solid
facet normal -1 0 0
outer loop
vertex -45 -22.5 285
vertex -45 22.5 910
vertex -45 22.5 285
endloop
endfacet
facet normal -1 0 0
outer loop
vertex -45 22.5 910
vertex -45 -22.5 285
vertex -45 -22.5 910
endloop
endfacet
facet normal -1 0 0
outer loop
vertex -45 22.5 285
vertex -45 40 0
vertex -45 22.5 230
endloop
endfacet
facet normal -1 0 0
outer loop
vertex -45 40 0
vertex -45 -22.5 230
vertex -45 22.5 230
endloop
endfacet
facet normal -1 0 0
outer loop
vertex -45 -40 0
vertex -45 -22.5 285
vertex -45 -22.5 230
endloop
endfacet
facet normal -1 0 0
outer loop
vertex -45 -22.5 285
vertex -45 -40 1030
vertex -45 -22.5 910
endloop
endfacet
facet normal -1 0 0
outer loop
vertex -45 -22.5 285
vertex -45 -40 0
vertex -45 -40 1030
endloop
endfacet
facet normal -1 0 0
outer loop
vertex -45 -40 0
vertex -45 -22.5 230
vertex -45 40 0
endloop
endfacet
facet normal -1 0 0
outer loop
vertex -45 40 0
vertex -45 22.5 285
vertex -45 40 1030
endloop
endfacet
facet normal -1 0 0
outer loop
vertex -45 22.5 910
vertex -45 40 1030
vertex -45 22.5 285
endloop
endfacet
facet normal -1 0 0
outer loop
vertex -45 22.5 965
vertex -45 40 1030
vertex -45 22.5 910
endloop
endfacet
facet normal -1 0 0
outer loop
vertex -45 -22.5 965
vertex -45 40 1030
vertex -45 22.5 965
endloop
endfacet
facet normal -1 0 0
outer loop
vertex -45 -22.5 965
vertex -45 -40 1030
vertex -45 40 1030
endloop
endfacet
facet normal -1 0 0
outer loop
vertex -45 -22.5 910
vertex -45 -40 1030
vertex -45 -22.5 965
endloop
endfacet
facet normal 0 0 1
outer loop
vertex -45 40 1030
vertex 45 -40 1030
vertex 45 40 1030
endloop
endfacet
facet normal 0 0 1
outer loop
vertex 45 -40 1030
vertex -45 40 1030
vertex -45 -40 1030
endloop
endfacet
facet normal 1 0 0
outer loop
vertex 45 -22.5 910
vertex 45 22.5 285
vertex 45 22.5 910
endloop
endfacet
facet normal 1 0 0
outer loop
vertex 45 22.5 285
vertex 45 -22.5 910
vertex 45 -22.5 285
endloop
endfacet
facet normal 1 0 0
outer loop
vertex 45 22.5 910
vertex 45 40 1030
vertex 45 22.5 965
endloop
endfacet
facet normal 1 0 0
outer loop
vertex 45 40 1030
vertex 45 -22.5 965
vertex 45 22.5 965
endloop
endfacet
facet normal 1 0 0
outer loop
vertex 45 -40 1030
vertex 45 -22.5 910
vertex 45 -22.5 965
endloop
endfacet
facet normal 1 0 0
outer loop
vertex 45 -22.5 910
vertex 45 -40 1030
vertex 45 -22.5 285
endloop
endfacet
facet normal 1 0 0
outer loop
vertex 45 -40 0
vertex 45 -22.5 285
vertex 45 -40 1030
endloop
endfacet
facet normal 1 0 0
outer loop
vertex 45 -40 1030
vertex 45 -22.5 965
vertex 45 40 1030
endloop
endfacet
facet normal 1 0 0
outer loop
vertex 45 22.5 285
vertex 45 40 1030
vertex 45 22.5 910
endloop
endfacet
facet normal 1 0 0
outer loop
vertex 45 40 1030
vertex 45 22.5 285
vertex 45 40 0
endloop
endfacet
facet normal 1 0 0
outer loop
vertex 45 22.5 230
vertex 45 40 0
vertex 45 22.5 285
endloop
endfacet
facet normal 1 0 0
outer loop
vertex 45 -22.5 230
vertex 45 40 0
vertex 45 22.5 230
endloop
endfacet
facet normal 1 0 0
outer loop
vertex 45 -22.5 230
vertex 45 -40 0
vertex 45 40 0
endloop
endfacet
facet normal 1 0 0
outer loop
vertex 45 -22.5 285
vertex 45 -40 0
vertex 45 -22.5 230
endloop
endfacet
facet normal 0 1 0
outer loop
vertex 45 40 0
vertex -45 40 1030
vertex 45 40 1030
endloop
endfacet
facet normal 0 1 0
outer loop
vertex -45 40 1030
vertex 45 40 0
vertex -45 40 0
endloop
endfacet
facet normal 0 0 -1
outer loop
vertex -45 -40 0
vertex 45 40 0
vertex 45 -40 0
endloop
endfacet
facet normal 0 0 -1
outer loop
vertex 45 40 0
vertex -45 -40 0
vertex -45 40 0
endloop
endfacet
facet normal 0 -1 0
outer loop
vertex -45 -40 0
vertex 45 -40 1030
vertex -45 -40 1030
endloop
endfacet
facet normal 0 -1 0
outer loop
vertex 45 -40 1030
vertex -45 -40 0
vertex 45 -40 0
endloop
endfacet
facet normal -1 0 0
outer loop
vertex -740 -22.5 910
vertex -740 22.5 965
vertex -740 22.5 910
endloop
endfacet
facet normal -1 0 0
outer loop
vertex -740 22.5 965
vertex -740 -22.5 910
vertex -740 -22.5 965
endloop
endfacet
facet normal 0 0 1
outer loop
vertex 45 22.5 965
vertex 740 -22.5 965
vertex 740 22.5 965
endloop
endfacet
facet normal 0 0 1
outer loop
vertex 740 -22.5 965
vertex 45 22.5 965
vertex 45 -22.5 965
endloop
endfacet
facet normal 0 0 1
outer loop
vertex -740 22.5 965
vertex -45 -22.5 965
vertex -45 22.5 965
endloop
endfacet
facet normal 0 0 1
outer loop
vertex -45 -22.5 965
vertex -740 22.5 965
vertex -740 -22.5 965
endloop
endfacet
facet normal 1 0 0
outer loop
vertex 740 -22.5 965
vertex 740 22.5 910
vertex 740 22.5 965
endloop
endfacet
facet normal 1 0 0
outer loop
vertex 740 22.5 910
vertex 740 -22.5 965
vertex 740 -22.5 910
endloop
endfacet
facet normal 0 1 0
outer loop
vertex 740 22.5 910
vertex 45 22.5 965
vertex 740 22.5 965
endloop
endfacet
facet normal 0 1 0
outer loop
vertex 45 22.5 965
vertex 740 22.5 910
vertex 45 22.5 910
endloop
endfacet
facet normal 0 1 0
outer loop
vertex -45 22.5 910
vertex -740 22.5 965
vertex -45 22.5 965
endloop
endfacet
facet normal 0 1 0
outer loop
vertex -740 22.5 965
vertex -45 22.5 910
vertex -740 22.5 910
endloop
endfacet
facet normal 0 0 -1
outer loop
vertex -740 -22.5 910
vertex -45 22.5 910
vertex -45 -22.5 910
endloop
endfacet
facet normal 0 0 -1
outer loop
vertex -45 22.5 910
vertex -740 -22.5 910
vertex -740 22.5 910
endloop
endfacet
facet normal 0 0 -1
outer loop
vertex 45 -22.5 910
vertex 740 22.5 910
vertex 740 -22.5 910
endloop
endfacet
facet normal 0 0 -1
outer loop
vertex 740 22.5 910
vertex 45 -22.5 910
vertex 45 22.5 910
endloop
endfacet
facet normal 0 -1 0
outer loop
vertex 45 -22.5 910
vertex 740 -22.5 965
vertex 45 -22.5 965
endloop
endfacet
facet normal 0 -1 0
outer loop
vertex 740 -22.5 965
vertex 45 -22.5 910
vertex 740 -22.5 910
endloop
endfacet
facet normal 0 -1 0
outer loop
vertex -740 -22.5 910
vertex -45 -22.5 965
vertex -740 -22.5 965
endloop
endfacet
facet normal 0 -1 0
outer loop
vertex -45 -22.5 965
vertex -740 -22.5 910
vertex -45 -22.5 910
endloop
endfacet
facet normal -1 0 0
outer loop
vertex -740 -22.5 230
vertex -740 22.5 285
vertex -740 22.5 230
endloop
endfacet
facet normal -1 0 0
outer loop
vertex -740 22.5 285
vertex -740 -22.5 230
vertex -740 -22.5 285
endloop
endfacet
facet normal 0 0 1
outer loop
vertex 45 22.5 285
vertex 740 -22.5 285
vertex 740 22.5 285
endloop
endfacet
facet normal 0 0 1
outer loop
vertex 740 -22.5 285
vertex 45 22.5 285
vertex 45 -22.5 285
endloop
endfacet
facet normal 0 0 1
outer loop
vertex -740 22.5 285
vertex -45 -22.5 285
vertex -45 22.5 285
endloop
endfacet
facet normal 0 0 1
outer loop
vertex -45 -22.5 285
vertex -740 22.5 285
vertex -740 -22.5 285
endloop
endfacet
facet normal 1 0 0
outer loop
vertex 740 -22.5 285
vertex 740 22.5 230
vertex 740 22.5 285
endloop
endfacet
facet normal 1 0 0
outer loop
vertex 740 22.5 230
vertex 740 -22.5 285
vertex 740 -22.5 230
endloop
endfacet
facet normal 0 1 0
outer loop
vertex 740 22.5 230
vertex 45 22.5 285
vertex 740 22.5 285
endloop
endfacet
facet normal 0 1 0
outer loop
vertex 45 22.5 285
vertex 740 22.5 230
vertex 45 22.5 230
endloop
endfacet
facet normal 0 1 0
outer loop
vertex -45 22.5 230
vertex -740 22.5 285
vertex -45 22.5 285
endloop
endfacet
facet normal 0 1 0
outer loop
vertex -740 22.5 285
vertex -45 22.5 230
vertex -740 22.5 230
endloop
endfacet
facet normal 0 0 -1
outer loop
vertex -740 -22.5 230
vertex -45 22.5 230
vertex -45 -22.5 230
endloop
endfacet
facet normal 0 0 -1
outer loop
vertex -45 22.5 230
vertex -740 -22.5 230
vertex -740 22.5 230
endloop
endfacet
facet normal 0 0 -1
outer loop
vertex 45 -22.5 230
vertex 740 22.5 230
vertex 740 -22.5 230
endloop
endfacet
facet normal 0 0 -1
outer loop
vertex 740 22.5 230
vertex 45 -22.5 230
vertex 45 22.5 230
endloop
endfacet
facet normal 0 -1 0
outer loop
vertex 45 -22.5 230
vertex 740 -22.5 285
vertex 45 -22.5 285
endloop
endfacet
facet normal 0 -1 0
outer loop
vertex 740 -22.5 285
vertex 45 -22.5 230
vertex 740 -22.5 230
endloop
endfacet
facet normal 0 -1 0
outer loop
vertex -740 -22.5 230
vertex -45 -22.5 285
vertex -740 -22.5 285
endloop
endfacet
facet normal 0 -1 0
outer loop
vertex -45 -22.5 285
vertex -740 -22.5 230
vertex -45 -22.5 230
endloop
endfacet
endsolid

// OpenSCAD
// file: tea_shop_signage_parameters.scad
// =============================================================================
// TEA SHOP DIORAMA — SIGNAGE PARAMETERS (3D TAMIL "டீ கடை")
// =============================================================================
// All units: mm (1000 mm = 1.0 m), 1:1 real-world scale (1000 units = 1 GTA unit).
// Shared global coordinate system (identical to Groups 1–4):
//   +X -> left -> right  (0 = left outer wall, BUILD_W = right outer wall)
//   +Y -> front -> back  (0 = front eave wall, BUILD_D = back wall)
//   +Z -> up             (0 = ground / plinth top datum)
// =============================================================================

// --- SHARED GLOBAL VARIABLES (Reused from Groups 1–4) ------------------------
WALL_T             = 250;   // wall panel thickness
BUILD_W            = 6000;  // building width along X (6.00 m)
BUILD_D            = 4000;  // building depth along Y (4.00 m)
BACK_H             = 3200;  // wall height at BACK (tall side)
FRONT_H            = 2400;  // wall height at FRONT eave (short side)

// Group 1 front opening & plinth references:
left_pier_width    = 600;
window_width       = 3400;
mid_pier_width     = 500;
door_width         = 1000;
sill_height        = 900;

window_left        = left_pier_width;                   // 600 mm
window_right       = window_left + window_width;        // 4000 mm
door_left          = window_right + mid_pier_width;     // 4500 mm
door_right         = door_left + door_width;            // 5500 mm

// Group 2/3 roof slope derivation:
ROOF_RISE          = BACK_H - FRONT_H;                 // 800 mm
ROOF_RUN           = BUILD_D;                           // 4000 mm
ROOF_ANGLE         = atan(ROOF_RISE / ROOF_RUN);        // ~11.3099°

// Group 3 pergola structure references:
POST_SIZE          = 100;
POST_Y             = -2250;                             // front post line (mm)
MAIN_BEAM_WIDTH    = 80;
MAIN_BEAM_HEIGHT   = 120;
CROSS_BEAM_WIDTH   = 80;
CROSS_BEAM_HEIGHT  = 100;
PERGOLA_EAVE_Z     = FRONT_H;
POST_HEIGHT        = PERGOLA_EAVE_Z - abs(POST_Y) * tan(ROOF_ANGLE) - CROSS_BEAM_HEIGHT - MAIN_BEAM_HEIGHT;


// =============================================================================
// SIGNAGE PARAMETERS — ACCURATE SCALE & FACADE POSITIONING
// =============================================================================

// --- 1. Main Hanging Signboard ("டீ கடை") --------------------------------------
// REFERENCE OBSERVATIONS (Images 9b1fed6bc4, 0d34e93fe1, 9cc7378ff7):
// - Positioned centered directly on the front facade: X = BUILD_W / 2 = 3000 mm.
// - Dimensions: 1600 mm wide x 920 mm high, 30 mm thick base plate.
// - Raised outer protective rim border (25 mm wide, 8 mm projection).
// - 3D Tamil typography: "டீ கடை" (Tea Kadai) extruded in bold 3D letters.
// - Decorative separator line + authentic 3D tea cup graphic on right side.
// - Bottom edge rests directly on top of the front pergola canopy / beam line.
HANGING_SIGN_W     = 1600;  // signboard width along X (mm)
HANGING_SIGN_H     = 920;   // signboard height along Z (mm)
HANGING_SIGN_T     = 30;    // board base plate thickness along Y (mm)
HANGING_SIGN_RIM_W = 25;    // width of outer raised border frame (mm)
HANGING_SIGN_RIM_T = 8;     // projection of outer border frame (mm)
HANGING_SIGN_LET_T = 10;    // extrusion depth of 3D Tamil text & graphics (mm)

HANGING_SIGN_X     = BUILD_W / 2; // Centered at X = 3000 mm on front facade
HANGING_SIGN_Y     = POST_Y - MAIN_BEAM_WIDTH / 2 - HANGING_SIGN_T; // sitting on front face of beam
// Elevation: bottom rests flush on top of the pergola canopy eave line:
HANGING_SIGN_Z     = PERGOLA_EAVE_Z - abs(POST_Y) * tan(ROOF_ANGLE) + 10; // ≈ 1960 mm


// --- 2. Sign Bracket / Mounting Framework ------------------------------------
// Timber framework supporting the sign from behind, anchoring it to the pergola:
BRACKET_POST_W     = 90;    // upright support timber width along X (mm)
BRACKET_POST_D     = 80;    // upright support timber depth along Y (mm)
BRACKET_POST_TOP_Z = HANGING_SIGN_Z + HANGING_SIGN_H;
BRACKET_POST_H     = BRACKET_POST_TOP_Z - (POST_HEIGHT + MAIN_BEAM_HEIGHT);

BRACKET_BATTEN_W   = HANGING_SIGN_W - 120; // rear cross-batten width along X (mm)
BRACKET_BATTEN_D   = 45;                   // rear cross-batten depth along Y (mm)
BRACKET_BATTEN_H   = 55;                   // rear cross-batten height along Z (mm)


// --- 3. Front Wall Price List Sign ("விலைப்பட்டியல்") ------------------------
// REFERENCE OBSERVATIONS (Images 9b1fed6bc4, 8ffafd36e4):
// - Mounted flat on the exterior front knee-wall sill, beneath the service window.
// - Dimensions: 520 mm wide x 420 mm high x 15 mm thick.
// - Outer frame rim (15 mm wide) + 3D Tamil header "விலைப்பட்டியல்" (Price List).
PRICE_SIGN_W       = 520;   // width along X (mm)
PRICE_SIGN_H       = 420;   // height along Z (mm)
PRICE_SIGN_T       = 15;    // thickness along Y (mm)
PRICE_SIGN_RIM_W   = 15;    // border rim width (mm)
PRICE_SIGN_RIM_T   = 5;     // border rim thickness (mm)
PRICE_SIGN_LET_T   = 6;     // text/lines extrusion depth (mm)

PRICE_SIGN_X       = window_left + 450; // X = 1050 mm
PRICE_SIGN_Y       = -PRICE_SIGN_T - 2; // 2 mm proud of front wall (prevents z-fighting)
PRICE_SIGN_Z       = 350;               // centered vertically on the 900mm sill
// main file
// =============================================================================
// part_sign_bracket.scad — Export the mounting bracket framework.
// =============================================================================
// Centered at local origin [0, 0, 0] for direct Blender import!
// Spawns right at the 3D cursor / viewport center in Blender.
// Press F6 (render), then File -> Export as OBJ (or STL).
// =============================================================================

include <tea_shop_signage_modules.scad>;

// world_pos = false centers the model at local origin [0, 0, 0]
sign_bracket(world_pos = false);
